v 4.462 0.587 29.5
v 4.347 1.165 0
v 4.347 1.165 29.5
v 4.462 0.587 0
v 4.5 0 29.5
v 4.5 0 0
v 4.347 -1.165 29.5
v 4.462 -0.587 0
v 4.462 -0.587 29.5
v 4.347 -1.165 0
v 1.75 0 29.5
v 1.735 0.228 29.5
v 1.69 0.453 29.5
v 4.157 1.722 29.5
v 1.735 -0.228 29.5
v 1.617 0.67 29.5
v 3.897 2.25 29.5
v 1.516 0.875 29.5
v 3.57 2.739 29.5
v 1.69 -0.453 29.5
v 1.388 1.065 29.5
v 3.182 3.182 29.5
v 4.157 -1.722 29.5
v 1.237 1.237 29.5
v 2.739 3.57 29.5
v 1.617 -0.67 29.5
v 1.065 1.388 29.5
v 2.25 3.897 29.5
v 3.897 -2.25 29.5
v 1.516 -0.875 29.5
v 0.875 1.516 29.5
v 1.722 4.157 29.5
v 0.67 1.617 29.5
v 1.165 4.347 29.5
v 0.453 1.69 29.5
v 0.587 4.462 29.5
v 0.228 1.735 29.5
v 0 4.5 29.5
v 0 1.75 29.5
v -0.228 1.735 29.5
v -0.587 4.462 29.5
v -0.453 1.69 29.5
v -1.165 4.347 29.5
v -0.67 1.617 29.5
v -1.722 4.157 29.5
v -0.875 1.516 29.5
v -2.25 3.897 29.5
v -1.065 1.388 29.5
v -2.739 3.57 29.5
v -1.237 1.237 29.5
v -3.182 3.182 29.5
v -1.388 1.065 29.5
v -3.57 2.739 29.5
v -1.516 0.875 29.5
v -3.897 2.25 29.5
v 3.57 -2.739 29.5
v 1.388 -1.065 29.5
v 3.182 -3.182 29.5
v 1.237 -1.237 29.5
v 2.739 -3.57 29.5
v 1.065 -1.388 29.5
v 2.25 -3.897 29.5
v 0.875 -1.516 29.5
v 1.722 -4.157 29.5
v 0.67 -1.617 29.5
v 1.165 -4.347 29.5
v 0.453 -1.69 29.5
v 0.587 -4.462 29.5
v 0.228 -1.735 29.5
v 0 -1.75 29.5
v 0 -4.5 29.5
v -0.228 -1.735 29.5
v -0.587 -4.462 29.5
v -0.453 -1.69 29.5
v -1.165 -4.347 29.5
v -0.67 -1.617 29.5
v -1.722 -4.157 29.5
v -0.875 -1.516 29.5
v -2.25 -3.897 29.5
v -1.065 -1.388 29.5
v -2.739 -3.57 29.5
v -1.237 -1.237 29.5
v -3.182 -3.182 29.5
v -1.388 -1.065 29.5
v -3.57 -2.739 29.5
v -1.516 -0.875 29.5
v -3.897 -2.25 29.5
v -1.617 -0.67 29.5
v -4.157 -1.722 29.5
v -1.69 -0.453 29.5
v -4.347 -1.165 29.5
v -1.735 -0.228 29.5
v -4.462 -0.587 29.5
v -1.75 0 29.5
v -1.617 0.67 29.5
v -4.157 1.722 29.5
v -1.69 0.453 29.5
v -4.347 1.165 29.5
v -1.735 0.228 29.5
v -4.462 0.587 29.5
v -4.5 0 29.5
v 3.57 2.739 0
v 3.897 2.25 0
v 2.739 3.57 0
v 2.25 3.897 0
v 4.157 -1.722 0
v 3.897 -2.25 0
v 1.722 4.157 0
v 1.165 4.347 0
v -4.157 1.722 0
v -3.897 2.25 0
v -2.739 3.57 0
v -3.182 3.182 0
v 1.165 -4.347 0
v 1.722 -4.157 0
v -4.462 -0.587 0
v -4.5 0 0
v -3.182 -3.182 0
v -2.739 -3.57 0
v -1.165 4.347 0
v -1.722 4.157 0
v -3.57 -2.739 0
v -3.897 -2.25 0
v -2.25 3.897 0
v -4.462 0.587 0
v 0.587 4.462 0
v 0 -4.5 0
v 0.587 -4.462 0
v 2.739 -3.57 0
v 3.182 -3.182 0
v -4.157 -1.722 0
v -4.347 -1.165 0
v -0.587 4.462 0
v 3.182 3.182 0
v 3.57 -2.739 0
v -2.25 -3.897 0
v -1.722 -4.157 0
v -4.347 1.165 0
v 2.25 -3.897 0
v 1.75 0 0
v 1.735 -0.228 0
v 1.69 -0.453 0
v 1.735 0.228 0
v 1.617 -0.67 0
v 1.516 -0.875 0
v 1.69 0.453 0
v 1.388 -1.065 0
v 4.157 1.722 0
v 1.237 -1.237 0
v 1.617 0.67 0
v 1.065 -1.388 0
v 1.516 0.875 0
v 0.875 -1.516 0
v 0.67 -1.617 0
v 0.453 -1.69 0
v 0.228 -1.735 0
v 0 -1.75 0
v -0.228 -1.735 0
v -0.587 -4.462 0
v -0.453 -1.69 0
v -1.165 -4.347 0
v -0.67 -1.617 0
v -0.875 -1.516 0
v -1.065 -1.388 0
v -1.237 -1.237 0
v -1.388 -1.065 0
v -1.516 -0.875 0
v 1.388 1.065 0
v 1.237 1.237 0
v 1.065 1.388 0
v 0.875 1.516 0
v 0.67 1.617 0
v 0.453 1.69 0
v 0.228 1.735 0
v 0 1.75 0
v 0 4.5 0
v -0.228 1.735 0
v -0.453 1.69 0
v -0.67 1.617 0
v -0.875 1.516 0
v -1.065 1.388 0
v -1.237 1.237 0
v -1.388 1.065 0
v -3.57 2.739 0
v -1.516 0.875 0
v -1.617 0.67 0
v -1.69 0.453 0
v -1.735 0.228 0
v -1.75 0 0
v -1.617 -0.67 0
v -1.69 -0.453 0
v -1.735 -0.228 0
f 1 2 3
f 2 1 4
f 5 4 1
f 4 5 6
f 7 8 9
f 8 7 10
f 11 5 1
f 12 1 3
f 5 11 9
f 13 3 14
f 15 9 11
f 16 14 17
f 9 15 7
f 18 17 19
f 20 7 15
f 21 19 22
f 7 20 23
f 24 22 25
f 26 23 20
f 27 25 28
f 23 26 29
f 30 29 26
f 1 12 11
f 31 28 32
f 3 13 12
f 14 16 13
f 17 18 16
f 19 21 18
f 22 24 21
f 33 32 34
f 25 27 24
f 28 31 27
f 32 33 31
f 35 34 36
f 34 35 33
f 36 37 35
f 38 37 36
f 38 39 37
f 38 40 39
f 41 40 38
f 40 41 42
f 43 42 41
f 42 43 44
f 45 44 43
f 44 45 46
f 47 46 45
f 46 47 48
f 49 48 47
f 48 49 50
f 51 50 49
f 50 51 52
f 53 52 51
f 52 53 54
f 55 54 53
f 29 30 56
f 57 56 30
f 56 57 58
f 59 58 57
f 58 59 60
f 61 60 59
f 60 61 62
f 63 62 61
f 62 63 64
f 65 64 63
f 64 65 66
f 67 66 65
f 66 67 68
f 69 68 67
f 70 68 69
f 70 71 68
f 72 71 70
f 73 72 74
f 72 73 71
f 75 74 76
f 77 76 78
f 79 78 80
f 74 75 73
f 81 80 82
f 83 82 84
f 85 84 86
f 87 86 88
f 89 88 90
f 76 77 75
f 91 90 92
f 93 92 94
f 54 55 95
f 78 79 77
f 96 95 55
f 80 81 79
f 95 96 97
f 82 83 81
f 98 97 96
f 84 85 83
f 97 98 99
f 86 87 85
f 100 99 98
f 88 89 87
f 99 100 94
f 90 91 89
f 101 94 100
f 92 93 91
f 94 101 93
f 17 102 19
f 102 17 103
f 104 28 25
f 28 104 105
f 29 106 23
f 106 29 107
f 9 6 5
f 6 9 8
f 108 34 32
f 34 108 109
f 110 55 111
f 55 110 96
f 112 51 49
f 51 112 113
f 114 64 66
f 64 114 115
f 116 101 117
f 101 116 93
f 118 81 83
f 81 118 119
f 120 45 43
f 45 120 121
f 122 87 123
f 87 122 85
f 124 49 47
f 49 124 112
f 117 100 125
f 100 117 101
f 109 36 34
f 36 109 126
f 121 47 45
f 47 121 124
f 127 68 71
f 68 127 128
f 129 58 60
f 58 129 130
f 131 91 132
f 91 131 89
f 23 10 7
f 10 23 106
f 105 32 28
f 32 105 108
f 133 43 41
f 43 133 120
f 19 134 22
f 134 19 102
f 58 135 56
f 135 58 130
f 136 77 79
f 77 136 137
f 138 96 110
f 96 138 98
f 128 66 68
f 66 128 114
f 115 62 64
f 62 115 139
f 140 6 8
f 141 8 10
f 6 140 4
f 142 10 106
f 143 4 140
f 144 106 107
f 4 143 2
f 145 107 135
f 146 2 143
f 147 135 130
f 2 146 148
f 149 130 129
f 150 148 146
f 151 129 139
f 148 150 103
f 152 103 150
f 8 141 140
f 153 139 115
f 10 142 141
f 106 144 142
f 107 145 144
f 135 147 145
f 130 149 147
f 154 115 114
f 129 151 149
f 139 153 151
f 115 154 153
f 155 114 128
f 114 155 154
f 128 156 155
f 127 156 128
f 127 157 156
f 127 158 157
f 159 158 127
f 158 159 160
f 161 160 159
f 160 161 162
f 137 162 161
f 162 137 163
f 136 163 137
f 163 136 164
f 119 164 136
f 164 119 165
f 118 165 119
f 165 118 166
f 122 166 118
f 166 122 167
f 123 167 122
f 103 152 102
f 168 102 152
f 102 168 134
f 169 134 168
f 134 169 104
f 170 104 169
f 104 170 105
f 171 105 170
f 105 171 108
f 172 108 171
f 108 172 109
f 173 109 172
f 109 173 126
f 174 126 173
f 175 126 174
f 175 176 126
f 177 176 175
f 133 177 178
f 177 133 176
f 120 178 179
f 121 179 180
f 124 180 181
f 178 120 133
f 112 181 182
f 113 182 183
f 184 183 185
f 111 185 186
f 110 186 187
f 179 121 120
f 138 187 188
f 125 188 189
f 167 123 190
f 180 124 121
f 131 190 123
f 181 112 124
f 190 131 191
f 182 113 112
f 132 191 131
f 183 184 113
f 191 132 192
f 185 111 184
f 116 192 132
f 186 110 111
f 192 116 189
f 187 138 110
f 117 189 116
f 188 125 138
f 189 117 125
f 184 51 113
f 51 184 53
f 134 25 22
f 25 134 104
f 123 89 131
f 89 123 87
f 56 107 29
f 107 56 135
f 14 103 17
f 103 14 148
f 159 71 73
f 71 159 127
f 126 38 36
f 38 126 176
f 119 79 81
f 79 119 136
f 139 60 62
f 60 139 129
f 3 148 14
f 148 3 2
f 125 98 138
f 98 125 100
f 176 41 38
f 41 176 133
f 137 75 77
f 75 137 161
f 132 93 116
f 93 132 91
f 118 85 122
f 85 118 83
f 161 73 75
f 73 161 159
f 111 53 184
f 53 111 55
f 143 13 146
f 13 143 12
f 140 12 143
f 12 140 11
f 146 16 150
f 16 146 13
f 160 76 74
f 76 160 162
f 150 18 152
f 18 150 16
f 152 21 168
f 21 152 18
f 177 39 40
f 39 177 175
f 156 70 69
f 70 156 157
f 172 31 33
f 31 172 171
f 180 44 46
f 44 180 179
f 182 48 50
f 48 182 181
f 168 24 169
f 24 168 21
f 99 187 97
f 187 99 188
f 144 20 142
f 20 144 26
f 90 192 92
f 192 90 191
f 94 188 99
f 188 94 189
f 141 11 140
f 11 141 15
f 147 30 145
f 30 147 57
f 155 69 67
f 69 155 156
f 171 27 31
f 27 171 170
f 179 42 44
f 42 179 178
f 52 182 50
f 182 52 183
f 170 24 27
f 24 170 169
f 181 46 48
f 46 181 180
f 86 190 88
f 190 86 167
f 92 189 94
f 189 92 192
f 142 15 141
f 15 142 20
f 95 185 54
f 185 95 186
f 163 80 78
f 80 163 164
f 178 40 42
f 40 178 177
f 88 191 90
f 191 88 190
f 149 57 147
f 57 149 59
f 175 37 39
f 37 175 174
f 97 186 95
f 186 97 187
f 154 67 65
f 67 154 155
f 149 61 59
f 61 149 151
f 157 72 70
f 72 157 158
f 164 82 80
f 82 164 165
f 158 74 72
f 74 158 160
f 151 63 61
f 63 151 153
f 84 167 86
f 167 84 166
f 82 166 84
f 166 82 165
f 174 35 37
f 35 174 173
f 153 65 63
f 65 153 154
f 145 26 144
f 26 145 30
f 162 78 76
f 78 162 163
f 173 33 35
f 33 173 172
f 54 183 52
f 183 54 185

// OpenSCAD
// Gen-CK — frame standoff tube between stator and an endbell, on each M3 frame rod (outside rotor OD).
// Print x4. Height = frame_standoff_h (rotor + steel + hub + collar + running clearance).
include <parameters.scad>;
$fn = 48;
difference() {
    cylinder(d=standoff_od, h=frame_standoff_h);
    translate([0, 0, -0.1]) cylinder(d=m3_clear, h=frame_standoff_h + 0.2);
}
